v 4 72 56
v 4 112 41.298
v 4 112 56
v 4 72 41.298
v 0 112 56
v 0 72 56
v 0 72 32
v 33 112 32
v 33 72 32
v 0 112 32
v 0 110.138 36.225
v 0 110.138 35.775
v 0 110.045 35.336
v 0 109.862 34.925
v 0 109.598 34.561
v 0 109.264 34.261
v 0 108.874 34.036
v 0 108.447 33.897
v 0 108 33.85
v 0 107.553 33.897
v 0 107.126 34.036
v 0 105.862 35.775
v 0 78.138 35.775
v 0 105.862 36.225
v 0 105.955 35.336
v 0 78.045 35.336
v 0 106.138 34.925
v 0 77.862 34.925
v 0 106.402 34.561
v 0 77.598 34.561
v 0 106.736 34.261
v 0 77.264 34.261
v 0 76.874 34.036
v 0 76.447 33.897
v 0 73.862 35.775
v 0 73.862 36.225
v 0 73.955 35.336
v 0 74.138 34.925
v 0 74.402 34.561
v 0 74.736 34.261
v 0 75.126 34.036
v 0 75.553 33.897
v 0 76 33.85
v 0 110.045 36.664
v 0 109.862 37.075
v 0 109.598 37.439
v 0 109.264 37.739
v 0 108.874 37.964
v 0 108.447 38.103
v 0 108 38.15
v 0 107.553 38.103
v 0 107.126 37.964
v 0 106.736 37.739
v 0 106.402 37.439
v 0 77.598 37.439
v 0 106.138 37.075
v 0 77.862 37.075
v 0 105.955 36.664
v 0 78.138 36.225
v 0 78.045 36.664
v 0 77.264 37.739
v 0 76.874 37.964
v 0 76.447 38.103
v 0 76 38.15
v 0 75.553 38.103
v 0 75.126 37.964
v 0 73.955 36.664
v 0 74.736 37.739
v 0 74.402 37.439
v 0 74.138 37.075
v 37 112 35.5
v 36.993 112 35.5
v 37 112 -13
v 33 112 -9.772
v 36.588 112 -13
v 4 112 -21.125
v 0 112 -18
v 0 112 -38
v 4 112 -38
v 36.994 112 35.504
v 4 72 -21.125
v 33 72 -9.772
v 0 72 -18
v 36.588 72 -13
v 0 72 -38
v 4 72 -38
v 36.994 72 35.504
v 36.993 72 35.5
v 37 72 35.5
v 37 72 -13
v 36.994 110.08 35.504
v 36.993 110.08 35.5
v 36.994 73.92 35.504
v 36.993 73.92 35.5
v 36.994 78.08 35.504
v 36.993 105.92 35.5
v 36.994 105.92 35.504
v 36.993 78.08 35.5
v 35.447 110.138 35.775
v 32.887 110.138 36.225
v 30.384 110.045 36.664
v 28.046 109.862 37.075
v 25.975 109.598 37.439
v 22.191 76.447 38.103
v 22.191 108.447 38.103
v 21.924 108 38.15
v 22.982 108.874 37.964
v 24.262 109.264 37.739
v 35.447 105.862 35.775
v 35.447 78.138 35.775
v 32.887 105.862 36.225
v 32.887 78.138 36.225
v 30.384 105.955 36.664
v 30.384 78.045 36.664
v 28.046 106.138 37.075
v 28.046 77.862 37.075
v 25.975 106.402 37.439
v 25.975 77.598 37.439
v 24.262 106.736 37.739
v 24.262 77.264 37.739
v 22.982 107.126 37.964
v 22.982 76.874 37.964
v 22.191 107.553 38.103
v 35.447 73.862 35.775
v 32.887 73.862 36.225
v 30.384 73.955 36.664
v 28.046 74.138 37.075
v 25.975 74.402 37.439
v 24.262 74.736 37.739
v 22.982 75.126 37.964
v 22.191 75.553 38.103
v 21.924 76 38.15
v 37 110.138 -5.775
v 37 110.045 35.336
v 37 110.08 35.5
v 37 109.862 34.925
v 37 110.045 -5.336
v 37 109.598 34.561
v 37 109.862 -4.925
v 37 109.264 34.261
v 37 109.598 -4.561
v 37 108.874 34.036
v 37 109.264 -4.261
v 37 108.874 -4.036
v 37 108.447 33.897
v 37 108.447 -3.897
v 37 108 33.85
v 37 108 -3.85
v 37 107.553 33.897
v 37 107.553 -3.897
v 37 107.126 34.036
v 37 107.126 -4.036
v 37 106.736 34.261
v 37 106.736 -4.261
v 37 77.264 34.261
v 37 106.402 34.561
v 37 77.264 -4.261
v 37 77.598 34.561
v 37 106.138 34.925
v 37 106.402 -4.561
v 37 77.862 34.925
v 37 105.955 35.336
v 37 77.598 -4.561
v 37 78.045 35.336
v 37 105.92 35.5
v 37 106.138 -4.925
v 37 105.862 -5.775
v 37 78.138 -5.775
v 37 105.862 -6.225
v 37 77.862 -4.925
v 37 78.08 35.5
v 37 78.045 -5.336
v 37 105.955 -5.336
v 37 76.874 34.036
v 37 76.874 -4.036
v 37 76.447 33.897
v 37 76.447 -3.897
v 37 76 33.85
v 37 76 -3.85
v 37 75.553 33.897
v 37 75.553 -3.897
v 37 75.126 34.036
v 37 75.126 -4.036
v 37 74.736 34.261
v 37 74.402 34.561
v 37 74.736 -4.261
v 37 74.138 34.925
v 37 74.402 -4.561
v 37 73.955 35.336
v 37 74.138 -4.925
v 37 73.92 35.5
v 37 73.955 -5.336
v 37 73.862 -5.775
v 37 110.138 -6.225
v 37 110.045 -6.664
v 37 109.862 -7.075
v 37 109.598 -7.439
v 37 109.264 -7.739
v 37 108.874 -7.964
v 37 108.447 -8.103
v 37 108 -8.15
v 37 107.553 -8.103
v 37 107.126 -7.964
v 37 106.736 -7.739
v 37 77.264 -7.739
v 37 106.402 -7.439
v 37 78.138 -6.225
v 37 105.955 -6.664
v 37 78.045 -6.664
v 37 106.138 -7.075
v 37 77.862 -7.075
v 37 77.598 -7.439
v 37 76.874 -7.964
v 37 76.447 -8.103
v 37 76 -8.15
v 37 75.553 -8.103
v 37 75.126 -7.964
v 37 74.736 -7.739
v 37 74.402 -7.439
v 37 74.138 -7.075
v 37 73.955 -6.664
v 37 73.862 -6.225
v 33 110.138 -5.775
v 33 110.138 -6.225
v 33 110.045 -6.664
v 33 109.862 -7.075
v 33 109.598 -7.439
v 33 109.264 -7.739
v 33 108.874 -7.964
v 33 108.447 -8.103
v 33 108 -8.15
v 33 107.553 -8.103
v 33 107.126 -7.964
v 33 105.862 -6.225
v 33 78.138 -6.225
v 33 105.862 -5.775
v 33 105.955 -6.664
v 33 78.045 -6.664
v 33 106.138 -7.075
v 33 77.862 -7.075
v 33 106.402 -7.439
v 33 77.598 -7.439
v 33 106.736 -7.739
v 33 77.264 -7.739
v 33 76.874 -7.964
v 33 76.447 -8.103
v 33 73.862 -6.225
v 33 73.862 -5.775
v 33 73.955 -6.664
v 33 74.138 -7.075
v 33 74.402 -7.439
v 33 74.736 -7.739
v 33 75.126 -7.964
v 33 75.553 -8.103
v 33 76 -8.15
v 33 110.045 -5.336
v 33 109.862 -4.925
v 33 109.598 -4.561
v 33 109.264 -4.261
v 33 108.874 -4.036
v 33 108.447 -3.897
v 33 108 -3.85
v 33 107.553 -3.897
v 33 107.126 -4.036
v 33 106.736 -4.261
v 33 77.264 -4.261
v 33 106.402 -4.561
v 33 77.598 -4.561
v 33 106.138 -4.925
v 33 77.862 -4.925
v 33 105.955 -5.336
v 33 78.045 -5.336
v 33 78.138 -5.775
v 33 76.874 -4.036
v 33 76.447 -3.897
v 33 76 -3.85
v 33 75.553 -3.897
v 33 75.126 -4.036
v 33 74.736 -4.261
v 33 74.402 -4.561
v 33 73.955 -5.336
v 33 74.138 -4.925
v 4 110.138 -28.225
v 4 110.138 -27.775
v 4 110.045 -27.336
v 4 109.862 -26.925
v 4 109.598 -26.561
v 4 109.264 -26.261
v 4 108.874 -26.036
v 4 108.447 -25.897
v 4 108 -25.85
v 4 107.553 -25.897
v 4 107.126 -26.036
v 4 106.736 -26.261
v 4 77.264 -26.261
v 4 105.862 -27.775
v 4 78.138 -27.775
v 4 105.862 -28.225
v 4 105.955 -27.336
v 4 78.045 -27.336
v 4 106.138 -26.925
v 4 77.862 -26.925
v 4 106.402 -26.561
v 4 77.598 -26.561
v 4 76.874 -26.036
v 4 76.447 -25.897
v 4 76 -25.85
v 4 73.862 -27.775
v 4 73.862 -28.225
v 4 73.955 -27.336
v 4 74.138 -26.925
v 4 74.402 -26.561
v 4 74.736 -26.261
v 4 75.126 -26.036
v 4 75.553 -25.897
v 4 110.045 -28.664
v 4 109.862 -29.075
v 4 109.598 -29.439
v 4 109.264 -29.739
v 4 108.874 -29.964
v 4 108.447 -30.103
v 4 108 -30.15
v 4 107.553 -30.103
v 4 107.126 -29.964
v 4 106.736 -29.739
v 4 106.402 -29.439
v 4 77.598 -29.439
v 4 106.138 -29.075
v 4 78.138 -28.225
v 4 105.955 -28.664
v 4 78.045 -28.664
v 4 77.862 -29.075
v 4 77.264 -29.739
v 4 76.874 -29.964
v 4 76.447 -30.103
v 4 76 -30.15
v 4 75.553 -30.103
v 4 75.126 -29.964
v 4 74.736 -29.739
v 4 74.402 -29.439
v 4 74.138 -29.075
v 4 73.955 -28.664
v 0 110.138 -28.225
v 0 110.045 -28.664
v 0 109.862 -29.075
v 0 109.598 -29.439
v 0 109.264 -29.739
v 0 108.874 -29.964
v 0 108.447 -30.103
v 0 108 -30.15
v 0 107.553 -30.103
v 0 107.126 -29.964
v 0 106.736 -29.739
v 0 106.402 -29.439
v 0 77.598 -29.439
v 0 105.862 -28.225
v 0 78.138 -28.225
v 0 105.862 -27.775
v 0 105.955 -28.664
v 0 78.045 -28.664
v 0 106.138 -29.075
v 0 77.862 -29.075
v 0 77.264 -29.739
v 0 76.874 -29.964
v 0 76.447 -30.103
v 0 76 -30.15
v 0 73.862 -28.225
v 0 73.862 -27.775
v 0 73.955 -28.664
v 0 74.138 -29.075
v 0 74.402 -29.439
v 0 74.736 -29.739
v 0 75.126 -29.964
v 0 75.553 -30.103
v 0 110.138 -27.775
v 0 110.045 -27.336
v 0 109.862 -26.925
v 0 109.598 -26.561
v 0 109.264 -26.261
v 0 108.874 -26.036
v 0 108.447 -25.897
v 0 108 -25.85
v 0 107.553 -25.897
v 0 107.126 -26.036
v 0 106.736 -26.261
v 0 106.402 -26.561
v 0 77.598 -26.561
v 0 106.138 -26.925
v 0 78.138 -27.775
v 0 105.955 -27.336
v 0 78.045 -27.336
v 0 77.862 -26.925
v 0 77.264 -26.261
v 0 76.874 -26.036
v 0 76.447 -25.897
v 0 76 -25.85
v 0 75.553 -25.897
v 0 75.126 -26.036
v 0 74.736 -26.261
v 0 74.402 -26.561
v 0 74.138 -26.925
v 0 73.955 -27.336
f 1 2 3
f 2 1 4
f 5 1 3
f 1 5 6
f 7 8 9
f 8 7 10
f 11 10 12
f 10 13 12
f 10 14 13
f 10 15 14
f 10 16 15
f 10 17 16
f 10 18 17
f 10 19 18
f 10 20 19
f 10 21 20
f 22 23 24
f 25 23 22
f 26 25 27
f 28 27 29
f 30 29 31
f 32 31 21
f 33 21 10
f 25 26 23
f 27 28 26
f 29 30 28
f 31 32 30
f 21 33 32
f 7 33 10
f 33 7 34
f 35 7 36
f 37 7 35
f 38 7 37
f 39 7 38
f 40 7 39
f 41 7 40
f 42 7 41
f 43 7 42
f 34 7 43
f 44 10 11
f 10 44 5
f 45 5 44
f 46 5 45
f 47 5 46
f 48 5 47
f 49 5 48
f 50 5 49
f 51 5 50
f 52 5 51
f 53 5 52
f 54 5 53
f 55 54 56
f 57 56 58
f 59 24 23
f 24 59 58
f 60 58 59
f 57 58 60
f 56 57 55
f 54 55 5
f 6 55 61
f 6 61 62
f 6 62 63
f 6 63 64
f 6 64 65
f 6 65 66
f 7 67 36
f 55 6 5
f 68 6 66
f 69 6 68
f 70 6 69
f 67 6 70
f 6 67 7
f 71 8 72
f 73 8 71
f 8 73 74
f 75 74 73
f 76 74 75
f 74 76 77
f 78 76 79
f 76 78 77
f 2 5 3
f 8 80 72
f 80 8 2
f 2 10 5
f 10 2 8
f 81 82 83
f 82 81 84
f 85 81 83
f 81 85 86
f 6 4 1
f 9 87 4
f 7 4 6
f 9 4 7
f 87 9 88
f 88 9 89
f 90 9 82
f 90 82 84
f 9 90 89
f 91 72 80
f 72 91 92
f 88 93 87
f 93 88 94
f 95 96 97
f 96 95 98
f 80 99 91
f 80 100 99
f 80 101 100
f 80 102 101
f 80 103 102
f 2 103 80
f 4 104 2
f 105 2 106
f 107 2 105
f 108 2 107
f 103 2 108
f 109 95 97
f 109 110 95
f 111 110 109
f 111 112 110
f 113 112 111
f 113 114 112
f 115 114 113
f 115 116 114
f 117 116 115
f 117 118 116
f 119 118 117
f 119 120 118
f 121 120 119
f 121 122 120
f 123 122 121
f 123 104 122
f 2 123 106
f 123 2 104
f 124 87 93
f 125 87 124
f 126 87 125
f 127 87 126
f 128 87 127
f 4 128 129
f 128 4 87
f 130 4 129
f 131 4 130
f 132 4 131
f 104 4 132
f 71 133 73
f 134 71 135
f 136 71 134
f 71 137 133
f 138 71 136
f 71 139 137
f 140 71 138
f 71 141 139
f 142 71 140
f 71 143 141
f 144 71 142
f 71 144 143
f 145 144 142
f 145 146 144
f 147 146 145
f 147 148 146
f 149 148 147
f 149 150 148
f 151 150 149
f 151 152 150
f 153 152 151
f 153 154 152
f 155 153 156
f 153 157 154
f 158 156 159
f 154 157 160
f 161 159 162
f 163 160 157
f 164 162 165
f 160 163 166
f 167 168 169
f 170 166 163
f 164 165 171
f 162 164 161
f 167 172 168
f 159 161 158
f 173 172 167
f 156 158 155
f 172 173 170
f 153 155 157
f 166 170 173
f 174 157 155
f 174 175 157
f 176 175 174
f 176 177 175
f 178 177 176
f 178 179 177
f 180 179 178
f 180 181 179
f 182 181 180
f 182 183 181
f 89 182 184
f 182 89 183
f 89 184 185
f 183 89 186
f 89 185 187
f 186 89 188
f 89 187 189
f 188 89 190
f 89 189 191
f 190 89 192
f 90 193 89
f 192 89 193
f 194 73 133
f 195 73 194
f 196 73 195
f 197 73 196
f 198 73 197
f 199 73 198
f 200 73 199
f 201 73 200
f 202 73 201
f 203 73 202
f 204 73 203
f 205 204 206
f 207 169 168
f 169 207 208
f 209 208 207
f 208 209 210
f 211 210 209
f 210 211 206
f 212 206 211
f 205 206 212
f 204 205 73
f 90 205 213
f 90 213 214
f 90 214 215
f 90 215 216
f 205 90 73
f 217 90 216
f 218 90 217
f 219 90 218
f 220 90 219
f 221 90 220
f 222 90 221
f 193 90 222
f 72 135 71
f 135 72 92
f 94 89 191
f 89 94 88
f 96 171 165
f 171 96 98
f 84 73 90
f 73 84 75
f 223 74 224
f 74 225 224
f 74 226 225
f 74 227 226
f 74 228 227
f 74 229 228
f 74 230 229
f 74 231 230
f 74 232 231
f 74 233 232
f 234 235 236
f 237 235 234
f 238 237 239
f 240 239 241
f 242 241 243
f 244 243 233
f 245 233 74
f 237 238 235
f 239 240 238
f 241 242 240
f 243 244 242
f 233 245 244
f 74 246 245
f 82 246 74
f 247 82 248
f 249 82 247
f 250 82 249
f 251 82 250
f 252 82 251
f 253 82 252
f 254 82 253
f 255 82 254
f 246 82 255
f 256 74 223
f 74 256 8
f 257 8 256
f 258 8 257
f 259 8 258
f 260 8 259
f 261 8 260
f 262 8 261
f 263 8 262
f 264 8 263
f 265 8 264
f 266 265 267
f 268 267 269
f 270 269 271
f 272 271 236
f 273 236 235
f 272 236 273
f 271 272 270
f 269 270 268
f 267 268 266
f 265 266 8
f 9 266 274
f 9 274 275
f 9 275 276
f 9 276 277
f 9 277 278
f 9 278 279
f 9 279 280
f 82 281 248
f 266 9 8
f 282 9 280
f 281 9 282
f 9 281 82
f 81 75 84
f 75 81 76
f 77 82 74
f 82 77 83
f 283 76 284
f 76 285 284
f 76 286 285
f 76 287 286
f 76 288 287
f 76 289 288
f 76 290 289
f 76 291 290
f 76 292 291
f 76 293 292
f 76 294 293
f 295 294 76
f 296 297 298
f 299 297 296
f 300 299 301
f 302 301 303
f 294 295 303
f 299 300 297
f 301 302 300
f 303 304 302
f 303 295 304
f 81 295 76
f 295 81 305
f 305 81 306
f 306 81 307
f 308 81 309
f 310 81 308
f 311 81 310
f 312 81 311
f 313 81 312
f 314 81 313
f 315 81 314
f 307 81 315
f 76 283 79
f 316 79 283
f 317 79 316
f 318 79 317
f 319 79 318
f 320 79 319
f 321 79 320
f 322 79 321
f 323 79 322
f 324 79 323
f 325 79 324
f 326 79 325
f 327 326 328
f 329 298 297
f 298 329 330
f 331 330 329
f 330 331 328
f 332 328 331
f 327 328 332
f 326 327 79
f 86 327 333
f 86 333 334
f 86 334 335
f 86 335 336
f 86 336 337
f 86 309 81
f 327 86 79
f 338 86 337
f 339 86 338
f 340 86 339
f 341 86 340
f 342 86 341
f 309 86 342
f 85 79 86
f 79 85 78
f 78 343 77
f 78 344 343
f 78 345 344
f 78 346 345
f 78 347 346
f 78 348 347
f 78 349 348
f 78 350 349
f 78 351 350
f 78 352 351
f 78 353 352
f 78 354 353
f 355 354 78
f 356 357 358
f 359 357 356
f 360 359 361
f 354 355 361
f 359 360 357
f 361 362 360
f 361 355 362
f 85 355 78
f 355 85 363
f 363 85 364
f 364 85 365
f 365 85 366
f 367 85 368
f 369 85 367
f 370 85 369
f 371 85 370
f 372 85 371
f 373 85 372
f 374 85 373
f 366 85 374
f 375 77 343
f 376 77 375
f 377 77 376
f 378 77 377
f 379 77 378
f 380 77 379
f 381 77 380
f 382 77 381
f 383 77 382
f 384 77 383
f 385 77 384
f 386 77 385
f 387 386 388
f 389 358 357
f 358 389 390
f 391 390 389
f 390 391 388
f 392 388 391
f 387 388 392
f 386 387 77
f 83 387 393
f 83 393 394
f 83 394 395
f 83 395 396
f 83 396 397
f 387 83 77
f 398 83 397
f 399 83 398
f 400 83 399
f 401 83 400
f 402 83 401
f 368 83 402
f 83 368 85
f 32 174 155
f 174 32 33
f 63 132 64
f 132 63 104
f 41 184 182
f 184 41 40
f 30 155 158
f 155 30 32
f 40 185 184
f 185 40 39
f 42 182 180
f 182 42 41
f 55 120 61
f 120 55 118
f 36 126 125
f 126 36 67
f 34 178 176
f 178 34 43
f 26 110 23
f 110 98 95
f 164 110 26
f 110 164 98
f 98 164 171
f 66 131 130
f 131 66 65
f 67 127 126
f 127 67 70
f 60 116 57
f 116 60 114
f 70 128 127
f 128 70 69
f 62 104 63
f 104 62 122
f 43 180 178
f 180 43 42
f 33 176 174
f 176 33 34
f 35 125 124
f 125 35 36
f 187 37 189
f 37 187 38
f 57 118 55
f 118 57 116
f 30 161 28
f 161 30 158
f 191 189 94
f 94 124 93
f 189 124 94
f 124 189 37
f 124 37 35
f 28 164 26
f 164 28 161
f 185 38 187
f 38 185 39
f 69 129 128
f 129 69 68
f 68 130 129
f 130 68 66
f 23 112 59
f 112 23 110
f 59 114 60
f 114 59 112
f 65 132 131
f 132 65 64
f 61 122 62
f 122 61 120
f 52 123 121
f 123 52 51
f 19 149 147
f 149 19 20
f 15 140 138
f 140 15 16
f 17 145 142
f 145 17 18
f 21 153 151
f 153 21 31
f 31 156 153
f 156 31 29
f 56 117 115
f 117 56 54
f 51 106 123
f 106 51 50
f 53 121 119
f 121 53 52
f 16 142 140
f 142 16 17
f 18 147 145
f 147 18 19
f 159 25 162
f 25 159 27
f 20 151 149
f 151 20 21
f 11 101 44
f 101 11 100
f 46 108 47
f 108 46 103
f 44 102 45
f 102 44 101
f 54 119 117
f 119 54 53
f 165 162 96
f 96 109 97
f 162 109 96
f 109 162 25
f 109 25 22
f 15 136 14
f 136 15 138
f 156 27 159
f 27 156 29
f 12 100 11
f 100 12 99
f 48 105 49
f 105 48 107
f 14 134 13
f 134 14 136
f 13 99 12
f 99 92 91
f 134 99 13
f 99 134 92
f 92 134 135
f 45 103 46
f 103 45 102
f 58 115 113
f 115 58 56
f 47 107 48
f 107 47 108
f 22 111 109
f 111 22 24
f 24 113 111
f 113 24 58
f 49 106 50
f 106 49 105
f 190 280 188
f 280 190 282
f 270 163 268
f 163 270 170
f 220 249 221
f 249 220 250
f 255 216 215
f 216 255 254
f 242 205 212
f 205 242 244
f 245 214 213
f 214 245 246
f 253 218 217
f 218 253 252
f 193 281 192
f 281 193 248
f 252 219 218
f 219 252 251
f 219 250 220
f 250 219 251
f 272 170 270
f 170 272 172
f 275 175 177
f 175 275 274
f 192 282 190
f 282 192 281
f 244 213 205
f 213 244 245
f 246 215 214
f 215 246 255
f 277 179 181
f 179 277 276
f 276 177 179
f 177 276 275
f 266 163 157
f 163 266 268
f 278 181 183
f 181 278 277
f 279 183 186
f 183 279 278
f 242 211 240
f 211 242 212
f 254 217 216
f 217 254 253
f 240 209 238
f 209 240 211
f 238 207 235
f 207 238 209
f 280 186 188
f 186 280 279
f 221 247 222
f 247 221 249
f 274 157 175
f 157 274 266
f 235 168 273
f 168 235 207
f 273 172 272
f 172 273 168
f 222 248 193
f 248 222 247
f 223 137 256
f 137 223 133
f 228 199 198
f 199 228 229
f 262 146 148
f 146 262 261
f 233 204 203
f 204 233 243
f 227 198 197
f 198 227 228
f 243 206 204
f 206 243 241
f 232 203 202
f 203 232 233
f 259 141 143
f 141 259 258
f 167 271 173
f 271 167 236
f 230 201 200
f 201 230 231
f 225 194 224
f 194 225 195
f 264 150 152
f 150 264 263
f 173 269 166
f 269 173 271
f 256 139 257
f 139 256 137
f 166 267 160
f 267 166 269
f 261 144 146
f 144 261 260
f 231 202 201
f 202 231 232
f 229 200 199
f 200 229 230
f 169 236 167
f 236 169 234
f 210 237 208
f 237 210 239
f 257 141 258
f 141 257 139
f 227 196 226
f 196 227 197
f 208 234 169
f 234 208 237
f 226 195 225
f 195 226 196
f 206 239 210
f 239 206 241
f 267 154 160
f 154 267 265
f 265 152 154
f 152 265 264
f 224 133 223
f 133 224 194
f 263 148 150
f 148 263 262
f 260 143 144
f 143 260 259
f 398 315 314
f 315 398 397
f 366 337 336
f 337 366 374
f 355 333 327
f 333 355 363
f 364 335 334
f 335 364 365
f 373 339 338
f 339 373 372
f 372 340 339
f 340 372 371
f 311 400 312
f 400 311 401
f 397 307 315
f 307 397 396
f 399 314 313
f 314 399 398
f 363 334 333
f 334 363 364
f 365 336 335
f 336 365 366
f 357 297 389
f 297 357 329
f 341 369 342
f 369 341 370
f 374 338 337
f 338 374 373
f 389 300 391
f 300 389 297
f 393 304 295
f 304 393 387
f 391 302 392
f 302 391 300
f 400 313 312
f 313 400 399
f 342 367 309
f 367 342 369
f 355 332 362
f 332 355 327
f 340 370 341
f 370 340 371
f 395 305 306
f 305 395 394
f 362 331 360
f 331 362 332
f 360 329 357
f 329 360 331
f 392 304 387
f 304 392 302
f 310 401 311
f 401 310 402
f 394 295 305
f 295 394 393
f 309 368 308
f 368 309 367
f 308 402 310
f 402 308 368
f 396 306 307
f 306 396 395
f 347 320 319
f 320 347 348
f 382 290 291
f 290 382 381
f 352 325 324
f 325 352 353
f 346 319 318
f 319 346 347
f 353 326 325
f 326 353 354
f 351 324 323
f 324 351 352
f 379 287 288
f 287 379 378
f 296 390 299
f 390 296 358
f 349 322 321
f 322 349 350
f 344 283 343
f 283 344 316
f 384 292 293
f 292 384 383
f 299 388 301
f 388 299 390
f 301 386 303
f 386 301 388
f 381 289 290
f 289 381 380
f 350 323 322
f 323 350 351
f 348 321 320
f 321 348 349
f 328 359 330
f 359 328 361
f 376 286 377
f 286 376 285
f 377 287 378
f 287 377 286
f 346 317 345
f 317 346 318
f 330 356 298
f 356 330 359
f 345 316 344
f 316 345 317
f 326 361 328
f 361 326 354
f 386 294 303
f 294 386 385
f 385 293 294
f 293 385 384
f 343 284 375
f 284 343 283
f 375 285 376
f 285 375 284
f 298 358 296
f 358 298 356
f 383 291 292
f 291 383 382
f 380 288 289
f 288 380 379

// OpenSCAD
// MIDDLE TRACK BACK PIECES
// top middle entry top piece
difference() {
union() {
    // top harness
    translate([0,72,32])
    cube([4,40,24]);
    
    // angled piece
    translate([0,72,42])
    rotate([0,99.96,0])
    cube([4,40,37.56]);
    
    // bottom of angled piece
    translate([0,72,32])
    cube([34,40,4]);
    
    translate([0,72,35])
    cube([15,40,3.5]);

    // middle part that jumps over top straight track
    translate([33,72,-13])
    cube([4,40,48.5]);
    
    // bottom harness
    translate([0,72,-18])
    rotate([0,76,0])
    cube([4,40,37]);
    
    translate([0,72,-38])
    cube([4,40,20]);
}
    // top holes left and right
    translate([-4,76,36])
    rotate([0,90,0])
    cylinder(r=2.15,60, $fn=30);

    translate([-4,108,36])
    rotate([0,90,0])
    cylinder(r=2.15,60, $fn=30);
    
    // holes compatible with top guard rail
    translate([-4,76,-6])
    rotate([0,90,0])
    cylinder(r=2.15,90, $fn=30);

    translate([-4,108,-6])
    rotate([0,90,0])
    cylinder(r=2.15,90, $fn=30);

    // bottom holes left and right
    translate([-4,76,-28])
    rotate([0,90,0])
    cylinder(r=2.15,90, $fn=30);

    translate([-4,108,-28])
    rotate([0,90,0])
    cylinder(r=2.15,90, $fn=30);

    // clean up back
    translate([-10,0,0])
    cube([10,150,70]);
}
